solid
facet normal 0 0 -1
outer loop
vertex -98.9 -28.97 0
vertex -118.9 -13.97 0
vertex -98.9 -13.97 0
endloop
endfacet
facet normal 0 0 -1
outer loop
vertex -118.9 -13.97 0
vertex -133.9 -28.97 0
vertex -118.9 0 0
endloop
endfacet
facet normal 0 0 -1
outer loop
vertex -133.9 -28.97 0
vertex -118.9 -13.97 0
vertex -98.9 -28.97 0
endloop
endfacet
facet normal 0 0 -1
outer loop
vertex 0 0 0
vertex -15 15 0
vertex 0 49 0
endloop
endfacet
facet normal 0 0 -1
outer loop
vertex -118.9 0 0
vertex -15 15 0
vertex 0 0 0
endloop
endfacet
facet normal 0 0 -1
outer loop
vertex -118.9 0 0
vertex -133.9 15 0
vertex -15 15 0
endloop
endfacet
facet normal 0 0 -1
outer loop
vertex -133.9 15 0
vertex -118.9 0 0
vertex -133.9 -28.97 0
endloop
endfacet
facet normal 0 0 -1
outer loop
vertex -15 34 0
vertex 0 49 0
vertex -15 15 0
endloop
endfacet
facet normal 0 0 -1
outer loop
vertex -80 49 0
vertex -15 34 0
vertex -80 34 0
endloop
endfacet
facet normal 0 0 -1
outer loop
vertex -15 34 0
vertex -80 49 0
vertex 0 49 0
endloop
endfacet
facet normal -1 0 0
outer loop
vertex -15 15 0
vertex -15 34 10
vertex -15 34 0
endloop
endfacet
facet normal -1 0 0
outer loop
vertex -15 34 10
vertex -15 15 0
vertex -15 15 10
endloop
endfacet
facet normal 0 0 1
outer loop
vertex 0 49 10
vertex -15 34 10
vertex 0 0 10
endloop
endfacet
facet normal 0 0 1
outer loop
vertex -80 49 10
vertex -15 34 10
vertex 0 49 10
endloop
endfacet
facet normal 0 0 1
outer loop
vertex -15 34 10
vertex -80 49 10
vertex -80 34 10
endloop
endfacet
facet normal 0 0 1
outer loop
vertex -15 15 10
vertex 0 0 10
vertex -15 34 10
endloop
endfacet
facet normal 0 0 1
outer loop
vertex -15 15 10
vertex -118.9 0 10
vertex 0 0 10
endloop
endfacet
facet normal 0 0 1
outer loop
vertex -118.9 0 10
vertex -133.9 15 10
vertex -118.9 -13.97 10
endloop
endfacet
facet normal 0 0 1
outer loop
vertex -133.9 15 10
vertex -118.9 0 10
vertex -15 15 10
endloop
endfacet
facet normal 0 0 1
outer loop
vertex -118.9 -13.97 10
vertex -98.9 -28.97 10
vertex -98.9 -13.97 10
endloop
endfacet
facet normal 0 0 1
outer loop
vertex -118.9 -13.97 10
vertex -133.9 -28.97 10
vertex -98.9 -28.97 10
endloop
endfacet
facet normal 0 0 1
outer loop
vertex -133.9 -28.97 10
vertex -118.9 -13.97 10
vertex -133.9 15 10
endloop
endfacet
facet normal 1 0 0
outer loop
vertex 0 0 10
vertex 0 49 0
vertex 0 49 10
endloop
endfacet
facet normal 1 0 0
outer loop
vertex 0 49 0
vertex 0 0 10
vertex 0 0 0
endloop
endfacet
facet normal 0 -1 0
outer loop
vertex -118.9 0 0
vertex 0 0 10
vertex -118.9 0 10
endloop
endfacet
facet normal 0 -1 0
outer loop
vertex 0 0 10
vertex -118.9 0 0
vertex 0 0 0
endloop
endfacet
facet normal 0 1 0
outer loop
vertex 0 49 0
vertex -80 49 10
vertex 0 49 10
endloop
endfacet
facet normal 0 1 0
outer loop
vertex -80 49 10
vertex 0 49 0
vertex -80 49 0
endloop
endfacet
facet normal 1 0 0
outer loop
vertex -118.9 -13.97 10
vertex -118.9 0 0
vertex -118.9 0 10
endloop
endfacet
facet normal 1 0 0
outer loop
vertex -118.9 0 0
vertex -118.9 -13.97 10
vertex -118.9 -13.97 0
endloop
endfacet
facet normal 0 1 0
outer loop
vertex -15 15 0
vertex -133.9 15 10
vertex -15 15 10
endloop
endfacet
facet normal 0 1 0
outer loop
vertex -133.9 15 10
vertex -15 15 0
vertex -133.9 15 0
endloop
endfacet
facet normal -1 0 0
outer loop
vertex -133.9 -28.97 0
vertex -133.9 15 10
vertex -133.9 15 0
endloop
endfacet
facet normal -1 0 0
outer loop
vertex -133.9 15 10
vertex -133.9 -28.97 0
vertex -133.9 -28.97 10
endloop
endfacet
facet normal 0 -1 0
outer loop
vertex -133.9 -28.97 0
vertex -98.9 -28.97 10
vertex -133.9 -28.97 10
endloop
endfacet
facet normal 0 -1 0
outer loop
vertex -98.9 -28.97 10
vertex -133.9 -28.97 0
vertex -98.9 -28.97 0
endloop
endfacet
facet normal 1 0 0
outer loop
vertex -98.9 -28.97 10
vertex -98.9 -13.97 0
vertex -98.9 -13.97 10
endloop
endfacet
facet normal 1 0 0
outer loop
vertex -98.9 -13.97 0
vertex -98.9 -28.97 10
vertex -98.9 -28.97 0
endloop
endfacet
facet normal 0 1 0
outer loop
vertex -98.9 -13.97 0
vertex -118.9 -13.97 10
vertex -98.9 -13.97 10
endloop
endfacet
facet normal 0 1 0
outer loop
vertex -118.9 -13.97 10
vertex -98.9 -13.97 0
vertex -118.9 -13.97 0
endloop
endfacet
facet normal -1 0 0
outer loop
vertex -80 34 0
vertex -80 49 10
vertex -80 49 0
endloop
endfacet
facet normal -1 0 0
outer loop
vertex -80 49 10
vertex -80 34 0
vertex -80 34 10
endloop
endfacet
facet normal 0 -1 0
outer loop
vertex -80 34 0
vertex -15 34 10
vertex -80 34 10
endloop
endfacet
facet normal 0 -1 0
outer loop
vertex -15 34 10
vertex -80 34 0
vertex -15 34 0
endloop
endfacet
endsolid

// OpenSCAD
in = 25.4;
cm = 10;
mm = 1;

// params
wall_thickness = 15*mm;

mdf_wall_thickness = 0.55*in;
panel_thickness_sm = 1.25*cm;
panel_thickness_lg = 19*mm;

holder_length = 1*cm;//12*cm
holder_offset = 3.5*in;

mdf_holder_length = 2*cm;
panel_holder_length = 5*cm;


rotate([0, -90, 0]) 
{
    // bottom
    cube([holder_length, wall_thickness*2 + panel_thickness_lg, wall_thickness]);

    // between wall and panel
    cube([holder_length, wall_thickness, wall_thickness*2 + holder_offset]);

    // top
    translate([0, -wall_thickness-mdf_wall_thickness, wall_thickness*2 + holder_offset])
    cube([holder_length, wall_thickness*2 + mdf_wall_thickness, wall_thickness]);

    // wall side
    translate([0, -wall_thickness-mdf_wall_thickness, holder_offset + wall_thickness*2 - mdf_holder_length])
    cube([holder_length, wall_thickness, wall_thickness + mdf_holder_length]);

    // panel
    translate([0, wall_thickness+panel_thickness_lg])
    cube([holder_length, wall_thickness, wall_thickness*2 + panel_holder_length]);
}
